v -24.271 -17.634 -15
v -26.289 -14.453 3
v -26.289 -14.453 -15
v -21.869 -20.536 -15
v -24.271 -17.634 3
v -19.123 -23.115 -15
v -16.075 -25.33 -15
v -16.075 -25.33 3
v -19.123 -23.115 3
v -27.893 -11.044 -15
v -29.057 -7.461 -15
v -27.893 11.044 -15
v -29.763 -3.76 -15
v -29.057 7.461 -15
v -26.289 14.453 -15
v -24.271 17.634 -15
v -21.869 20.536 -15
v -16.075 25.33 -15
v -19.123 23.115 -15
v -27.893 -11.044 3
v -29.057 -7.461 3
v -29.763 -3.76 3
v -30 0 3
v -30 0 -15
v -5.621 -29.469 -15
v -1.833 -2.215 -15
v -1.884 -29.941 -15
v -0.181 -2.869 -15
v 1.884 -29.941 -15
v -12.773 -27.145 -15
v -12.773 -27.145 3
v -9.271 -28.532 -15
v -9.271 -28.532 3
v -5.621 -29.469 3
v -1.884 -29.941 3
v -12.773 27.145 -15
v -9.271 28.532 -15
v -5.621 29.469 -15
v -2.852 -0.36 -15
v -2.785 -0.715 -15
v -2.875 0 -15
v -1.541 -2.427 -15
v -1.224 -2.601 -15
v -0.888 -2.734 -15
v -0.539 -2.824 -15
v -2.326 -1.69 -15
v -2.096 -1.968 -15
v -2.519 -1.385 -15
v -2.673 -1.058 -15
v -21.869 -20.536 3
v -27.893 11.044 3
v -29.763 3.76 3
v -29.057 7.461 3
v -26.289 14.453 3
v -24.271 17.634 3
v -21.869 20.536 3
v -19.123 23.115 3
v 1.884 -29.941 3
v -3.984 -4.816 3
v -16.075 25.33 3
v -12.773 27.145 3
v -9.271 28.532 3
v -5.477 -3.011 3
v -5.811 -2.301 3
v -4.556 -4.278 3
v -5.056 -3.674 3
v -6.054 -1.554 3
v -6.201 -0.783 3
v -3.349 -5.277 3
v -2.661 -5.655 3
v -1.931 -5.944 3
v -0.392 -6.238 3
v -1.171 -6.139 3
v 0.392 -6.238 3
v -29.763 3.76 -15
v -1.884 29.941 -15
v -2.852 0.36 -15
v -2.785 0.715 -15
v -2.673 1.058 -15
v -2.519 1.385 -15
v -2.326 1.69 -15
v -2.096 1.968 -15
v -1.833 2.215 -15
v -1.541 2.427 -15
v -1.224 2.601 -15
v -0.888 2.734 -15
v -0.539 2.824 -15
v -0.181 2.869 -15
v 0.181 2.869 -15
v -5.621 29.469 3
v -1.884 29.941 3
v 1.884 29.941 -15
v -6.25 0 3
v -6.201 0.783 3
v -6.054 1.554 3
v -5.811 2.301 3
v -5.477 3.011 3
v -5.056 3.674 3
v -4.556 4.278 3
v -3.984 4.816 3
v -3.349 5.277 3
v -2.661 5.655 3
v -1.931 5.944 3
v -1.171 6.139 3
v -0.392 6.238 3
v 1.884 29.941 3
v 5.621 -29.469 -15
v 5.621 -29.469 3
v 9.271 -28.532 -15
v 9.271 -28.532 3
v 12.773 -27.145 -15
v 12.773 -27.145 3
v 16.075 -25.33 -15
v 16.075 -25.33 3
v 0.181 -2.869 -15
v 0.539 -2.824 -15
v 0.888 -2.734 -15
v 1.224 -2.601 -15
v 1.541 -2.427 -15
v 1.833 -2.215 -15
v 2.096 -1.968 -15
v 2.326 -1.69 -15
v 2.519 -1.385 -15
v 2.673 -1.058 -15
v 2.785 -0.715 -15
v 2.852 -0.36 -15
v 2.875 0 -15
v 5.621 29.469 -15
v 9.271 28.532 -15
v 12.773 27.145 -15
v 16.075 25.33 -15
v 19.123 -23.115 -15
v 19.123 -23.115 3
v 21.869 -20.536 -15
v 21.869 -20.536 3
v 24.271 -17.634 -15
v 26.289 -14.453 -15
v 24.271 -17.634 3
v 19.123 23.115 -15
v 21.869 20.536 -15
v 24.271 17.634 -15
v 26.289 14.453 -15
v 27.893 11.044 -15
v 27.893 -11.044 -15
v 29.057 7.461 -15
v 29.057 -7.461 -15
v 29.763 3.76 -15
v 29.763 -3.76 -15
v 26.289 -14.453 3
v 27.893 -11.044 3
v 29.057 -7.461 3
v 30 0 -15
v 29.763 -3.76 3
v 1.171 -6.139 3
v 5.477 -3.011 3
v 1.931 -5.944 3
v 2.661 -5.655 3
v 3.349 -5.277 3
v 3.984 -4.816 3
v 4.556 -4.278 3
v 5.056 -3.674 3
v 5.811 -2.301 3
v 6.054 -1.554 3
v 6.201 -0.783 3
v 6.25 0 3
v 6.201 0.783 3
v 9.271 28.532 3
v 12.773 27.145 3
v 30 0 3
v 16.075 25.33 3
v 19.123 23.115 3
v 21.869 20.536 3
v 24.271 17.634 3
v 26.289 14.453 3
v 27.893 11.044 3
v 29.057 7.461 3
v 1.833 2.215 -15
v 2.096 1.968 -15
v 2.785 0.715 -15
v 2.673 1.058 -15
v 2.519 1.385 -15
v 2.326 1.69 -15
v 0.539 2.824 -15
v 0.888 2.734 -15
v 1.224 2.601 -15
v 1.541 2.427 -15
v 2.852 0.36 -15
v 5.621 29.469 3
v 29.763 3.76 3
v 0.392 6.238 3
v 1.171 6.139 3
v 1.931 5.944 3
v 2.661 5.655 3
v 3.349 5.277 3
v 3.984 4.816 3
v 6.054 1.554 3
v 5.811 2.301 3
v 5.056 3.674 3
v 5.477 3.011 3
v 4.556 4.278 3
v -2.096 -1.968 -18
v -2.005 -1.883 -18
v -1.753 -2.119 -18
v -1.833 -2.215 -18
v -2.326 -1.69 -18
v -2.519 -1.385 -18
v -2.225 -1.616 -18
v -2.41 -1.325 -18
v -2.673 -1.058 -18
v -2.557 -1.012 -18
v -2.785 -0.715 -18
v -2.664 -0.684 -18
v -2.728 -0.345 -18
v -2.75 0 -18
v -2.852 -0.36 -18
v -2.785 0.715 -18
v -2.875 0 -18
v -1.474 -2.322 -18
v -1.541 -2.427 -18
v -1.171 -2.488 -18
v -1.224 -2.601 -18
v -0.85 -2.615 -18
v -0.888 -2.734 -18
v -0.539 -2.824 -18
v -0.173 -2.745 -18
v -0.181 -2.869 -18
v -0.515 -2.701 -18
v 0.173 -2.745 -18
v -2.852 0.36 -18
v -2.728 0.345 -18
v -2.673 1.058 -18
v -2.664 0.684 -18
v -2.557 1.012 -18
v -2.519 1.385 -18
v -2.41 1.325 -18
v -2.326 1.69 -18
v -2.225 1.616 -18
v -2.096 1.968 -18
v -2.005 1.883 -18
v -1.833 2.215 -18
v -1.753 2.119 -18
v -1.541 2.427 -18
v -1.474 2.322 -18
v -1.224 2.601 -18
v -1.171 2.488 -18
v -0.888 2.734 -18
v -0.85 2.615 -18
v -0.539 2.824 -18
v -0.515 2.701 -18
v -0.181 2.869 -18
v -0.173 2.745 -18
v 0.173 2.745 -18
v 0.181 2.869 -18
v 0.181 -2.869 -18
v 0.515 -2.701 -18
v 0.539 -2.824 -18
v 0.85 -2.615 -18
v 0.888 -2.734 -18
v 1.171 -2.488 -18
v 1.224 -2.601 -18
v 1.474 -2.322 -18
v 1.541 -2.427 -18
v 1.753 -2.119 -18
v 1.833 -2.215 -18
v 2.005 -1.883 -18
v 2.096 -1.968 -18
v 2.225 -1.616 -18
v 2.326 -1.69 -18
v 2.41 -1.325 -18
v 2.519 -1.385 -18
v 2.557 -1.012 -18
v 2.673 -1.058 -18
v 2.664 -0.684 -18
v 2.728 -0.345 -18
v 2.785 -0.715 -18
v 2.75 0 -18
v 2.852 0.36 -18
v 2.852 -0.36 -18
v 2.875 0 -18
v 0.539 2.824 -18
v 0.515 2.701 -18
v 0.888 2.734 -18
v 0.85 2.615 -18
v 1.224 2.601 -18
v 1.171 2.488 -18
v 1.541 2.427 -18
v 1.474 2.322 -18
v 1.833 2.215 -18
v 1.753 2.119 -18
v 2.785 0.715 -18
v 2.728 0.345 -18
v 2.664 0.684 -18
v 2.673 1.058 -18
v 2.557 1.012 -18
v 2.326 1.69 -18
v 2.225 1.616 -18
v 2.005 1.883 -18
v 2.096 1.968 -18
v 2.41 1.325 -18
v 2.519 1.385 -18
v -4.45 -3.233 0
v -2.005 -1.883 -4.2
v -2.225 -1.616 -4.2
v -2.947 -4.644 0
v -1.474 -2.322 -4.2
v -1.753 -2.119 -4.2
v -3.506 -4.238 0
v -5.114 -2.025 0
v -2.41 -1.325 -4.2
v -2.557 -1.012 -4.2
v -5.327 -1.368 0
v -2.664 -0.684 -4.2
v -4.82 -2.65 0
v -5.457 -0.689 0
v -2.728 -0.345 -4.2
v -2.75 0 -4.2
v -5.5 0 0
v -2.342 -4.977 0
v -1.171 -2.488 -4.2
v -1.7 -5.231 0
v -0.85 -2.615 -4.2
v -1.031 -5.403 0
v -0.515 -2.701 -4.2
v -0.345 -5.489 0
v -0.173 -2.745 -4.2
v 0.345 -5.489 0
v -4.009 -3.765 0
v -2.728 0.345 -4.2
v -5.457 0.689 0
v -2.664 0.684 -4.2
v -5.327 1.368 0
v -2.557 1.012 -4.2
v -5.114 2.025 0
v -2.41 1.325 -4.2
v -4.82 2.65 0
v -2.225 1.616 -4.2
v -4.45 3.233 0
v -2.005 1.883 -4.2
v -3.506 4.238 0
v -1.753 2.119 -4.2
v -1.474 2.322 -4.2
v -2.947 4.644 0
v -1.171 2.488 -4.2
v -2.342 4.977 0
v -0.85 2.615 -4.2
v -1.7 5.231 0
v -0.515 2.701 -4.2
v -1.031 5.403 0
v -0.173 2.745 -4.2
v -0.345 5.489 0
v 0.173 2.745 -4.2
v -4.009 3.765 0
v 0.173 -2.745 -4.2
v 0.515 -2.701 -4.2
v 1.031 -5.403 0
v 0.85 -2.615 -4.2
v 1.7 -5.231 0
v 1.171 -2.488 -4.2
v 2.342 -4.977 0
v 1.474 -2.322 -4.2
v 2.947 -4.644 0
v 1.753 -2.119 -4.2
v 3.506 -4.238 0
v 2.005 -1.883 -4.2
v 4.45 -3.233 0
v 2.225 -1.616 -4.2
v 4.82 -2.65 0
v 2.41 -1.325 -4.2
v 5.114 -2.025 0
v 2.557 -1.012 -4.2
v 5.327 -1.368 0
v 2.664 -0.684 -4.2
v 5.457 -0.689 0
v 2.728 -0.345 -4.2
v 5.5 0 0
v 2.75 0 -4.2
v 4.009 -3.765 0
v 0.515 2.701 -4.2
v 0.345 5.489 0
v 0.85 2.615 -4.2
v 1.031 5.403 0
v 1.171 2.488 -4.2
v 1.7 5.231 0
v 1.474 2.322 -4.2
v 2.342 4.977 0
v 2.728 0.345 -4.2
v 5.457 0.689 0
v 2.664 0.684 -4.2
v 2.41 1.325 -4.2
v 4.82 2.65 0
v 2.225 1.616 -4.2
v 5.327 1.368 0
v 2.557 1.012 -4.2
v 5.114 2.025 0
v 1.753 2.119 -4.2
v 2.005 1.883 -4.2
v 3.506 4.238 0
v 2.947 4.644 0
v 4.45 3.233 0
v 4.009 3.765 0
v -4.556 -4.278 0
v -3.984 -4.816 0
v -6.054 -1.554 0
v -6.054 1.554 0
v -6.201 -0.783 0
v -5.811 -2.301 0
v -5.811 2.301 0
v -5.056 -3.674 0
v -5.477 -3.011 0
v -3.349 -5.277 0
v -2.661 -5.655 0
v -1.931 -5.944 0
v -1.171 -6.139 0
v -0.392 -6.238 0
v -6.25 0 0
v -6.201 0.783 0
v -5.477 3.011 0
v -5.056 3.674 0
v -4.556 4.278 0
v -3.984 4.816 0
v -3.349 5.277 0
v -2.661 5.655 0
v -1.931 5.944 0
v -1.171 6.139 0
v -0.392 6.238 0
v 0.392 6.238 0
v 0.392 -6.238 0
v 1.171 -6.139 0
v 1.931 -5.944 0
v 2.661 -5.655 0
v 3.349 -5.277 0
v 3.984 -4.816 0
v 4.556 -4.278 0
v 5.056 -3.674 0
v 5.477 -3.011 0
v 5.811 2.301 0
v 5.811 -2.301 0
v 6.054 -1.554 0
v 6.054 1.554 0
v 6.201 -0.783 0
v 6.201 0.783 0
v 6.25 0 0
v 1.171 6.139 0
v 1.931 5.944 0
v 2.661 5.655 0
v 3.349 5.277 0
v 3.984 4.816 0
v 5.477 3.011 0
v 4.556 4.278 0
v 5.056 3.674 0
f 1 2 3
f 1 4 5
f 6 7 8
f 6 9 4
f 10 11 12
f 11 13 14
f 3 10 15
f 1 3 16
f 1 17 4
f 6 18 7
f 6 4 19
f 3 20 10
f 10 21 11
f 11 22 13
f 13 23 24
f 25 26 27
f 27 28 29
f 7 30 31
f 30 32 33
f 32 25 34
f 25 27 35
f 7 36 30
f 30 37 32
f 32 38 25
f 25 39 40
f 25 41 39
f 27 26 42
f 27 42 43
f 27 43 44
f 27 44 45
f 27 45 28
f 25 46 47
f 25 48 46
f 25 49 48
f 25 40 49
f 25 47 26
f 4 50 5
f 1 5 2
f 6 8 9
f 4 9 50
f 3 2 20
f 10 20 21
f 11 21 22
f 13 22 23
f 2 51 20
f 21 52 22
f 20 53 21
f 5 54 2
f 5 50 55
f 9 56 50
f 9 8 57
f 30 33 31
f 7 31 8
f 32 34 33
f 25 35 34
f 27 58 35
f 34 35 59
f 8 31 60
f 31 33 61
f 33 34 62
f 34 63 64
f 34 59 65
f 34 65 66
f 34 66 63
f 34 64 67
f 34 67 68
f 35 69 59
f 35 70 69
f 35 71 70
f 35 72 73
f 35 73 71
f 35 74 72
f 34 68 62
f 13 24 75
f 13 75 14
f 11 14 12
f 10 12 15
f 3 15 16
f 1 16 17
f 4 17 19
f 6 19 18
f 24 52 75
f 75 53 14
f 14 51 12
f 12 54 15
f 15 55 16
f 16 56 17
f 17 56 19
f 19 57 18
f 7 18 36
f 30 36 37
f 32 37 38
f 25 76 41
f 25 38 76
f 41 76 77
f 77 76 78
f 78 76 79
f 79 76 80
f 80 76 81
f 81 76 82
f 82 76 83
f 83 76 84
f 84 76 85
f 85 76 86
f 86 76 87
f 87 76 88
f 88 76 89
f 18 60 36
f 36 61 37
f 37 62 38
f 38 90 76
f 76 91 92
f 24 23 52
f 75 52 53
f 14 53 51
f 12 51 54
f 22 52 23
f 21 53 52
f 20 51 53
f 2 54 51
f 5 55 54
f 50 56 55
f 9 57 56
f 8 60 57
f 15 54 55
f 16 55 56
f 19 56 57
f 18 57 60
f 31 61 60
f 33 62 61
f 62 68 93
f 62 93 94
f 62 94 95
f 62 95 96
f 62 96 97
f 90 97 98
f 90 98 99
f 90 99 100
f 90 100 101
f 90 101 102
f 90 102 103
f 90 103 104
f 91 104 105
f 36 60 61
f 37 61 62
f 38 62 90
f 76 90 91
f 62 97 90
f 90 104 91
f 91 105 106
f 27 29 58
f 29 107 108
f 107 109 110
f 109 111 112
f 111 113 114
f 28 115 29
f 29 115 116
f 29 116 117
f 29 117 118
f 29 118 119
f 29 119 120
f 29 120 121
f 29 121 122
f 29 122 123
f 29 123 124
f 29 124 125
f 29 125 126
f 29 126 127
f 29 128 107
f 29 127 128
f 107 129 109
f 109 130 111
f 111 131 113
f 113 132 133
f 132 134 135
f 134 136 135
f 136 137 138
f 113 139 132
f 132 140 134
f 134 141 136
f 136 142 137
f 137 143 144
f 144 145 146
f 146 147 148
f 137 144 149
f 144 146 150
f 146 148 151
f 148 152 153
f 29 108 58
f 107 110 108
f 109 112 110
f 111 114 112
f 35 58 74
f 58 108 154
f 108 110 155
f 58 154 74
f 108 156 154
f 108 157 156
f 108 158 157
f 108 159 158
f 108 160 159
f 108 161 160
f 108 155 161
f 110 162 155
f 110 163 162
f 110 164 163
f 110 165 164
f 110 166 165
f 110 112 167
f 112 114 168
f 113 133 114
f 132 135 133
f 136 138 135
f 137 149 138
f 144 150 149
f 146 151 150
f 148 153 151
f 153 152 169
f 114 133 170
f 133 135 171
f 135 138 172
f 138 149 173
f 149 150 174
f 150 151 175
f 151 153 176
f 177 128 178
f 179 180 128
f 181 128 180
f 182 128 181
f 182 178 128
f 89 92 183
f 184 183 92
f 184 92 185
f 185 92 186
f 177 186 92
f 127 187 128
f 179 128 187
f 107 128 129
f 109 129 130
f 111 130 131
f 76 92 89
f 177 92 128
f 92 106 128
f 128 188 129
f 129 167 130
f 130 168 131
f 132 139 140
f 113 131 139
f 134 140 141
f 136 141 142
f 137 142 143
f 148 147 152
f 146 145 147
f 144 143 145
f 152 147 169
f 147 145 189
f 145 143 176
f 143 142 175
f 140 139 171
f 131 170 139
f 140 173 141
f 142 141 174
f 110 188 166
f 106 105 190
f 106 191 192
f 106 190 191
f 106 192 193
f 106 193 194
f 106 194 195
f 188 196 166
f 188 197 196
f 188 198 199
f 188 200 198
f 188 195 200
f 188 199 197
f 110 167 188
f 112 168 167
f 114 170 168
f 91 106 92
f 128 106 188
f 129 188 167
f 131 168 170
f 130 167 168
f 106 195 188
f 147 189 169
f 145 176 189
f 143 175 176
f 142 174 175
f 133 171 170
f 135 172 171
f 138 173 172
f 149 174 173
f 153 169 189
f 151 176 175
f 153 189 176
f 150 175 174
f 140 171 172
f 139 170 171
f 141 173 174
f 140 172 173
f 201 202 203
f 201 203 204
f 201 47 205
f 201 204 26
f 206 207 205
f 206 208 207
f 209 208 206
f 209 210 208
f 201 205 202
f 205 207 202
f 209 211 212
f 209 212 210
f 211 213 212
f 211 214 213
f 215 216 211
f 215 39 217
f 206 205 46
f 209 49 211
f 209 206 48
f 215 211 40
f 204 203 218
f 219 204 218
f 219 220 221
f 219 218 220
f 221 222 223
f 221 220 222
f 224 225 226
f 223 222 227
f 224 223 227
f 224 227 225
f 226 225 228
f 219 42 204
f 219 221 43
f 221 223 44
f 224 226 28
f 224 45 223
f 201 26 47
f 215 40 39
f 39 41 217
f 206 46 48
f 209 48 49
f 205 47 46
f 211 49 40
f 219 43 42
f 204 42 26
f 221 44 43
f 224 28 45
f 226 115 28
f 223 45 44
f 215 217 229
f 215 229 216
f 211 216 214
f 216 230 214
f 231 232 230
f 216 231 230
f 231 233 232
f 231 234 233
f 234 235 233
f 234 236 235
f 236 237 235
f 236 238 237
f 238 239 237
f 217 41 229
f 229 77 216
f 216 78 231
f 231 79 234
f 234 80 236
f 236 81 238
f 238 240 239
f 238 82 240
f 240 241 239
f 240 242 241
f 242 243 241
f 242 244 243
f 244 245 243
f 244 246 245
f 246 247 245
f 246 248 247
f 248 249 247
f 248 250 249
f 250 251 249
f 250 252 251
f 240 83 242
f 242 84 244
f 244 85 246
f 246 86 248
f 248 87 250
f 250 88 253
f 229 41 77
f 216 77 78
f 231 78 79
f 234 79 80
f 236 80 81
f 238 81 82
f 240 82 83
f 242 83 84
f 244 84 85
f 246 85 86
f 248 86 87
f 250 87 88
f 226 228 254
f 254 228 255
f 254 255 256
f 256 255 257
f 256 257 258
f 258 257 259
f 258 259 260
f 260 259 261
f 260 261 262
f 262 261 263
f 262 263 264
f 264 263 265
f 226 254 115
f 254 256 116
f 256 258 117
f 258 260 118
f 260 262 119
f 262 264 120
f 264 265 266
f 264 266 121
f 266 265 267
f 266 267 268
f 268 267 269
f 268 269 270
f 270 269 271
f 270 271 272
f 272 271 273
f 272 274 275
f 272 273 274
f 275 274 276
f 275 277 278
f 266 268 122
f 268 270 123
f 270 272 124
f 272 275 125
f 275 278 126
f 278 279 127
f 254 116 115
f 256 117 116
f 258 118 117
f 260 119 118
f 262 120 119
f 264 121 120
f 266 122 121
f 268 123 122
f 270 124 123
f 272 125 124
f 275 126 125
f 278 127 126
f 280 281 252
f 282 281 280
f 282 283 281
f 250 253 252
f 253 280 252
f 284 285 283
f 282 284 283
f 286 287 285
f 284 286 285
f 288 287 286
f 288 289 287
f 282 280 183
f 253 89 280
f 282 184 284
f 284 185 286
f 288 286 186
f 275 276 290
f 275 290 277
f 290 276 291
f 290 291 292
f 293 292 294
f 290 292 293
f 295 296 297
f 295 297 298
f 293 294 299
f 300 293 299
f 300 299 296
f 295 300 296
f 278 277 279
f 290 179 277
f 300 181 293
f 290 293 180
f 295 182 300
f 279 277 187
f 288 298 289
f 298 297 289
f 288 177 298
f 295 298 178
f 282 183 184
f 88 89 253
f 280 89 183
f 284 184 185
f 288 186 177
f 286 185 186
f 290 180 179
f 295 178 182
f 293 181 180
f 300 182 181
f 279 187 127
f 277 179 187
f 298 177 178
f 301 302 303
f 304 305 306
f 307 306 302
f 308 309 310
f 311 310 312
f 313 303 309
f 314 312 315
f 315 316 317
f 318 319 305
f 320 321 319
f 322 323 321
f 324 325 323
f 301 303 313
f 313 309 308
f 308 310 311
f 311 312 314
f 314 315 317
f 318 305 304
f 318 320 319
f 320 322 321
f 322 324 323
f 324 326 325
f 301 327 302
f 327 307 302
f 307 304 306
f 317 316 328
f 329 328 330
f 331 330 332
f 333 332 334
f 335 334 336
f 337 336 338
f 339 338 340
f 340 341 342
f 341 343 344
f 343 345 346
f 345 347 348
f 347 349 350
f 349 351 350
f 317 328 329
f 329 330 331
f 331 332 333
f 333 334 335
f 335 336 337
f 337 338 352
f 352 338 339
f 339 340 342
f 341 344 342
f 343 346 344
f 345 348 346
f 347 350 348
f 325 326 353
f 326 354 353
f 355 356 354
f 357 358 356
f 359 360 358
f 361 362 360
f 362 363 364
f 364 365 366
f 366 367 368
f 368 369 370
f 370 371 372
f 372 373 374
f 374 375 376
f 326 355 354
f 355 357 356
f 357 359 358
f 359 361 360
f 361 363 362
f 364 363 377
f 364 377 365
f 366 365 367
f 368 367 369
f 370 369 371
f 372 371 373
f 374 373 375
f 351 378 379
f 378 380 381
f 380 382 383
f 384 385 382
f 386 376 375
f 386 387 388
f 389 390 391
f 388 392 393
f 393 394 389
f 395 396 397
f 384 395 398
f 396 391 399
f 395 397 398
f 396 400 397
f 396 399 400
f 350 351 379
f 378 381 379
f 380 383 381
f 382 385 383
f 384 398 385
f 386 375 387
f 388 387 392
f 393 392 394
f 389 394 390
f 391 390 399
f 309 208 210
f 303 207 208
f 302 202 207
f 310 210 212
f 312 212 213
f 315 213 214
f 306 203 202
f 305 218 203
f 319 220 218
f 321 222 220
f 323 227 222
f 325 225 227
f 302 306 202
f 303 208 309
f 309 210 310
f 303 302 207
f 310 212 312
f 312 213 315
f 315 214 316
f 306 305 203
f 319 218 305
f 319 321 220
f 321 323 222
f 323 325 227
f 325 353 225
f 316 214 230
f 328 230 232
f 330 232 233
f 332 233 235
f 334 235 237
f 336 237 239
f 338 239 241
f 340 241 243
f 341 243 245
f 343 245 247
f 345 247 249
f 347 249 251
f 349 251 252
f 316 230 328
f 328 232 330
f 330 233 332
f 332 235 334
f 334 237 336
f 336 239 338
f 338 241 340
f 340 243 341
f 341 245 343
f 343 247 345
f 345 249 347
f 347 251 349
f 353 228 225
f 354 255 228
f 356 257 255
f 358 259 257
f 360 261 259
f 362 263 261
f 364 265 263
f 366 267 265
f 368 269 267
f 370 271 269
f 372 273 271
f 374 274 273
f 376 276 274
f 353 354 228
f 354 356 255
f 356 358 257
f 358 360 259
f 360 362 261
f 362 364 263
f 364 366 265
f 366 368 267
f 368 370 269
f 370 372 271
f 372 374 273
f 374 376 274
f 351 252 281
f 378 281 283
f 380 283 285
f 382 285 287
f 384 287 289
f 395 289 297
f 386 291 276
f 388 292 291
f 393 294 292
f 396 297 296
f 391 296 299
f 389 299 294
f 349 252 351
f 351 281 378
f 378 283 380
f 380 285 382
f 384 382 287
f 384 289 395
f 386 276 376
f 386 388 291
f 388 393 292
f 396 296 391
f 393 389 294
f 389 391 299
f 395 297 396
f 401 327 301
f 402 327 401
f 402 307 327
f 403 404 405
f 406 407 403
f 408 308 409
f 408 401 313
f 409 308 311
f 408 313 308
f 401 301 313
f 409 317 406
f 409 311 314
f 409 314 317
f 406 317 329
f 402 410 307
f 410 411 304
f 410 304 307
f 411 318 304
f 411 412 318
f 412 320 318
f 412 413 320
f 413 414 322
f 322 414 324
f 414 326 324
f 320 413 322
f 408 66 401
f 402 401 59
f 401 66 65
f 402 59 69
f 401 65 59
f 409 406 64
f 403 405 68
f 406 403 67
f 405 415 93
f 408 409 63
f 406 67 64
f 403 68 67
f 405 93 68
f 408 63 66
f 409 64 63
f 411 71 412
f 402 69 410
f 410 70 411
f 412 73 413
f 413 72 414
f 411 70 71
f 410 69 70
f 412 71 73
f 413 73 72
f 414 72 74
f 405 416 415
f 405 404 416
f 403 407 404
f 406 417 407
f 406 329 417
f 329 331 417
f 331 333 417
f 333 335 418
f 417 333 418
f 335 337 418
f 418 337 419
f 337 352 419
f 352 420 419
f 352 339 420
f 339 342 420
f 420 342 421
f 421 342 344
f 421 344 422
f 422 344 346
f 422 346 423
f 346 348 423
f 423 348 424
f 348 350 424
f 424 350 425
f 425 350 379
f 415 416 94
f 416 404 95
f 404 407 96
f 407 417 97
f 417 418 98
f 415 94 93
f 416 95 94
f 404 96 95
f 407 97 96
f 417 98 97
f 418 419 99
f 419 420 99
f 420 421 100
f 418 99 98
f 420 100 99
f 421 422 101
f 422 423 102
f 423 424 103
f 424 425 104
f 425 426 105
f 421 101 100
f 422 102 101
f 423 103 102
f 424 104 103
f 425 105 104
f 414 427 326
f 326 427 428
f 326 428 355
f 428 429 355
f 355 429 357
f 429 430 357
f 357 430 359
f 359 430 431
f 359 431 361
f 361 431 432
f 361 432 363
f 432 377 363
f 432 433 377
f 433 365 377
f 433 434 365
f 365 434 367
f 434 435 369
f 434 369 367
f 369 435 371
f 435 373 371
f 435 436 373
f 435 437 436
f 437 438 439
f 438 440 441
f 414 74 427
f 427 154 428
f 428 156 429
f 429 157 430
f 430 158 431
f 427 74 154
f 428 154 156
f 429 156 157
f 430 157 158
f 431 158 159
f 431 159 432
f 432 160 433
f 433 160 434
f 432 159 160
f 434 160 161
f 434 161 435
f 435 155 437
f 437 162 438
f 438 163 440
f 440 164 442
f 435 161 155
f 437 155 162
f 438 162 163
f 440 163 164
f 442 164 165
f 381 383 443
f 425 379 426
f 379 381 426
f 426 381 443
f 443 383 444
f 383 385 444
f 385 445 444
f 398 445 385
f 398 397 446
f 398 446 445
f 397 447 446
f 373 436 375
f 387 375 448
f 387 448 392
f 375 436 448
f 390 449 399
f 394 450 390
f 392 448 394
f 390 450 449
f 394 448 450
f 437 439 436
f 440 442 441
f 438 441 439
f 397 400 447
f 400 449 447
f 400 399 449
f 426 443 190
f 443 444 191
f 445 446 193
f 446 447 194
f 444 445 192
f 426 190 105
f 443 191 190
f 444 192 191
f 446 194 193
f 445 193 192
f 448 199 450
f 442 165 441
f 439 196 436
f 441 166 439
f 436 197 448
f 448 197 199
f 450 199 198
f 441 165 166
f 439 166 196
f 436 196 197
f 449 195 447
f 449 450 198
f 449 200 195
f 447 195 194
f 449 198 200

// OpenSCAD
$fn = 50;

difference() {
	union() {
		translate(v = [0, 0, -15.0]) {
			cylinder(h = 18, r = 30.0);
		}
		#translate(v = [0, 0, -18.0]) {
			cylinder(h = 18, r = 2.875);
		}
	}
	union() {
		translate(v = [0, 0, 0]) {
			rotate(a = [0, 0, 0]) {
				difference() {
					union() {
						translate(v = [0, 0, -18.0]) {
							cylinder(h = 18, r = 2.25);
						}
						translate(v = [0, 0, -4.2]) {
							cylinder(h = 4.2, r1 = 2.75, r2 = 5.5);
						}
						translate(v = [0, 0, -18.0]) {
							cylinder(h = 18, r = 2.75);
						}
						translate(v = [0, 0, -18.0]) {
							cylinder(h = 18, r = 2.25);
						}
					}
					union();
				}
			}
		}
		#cylinder(h = 3, r = 6.25);
	}
}
